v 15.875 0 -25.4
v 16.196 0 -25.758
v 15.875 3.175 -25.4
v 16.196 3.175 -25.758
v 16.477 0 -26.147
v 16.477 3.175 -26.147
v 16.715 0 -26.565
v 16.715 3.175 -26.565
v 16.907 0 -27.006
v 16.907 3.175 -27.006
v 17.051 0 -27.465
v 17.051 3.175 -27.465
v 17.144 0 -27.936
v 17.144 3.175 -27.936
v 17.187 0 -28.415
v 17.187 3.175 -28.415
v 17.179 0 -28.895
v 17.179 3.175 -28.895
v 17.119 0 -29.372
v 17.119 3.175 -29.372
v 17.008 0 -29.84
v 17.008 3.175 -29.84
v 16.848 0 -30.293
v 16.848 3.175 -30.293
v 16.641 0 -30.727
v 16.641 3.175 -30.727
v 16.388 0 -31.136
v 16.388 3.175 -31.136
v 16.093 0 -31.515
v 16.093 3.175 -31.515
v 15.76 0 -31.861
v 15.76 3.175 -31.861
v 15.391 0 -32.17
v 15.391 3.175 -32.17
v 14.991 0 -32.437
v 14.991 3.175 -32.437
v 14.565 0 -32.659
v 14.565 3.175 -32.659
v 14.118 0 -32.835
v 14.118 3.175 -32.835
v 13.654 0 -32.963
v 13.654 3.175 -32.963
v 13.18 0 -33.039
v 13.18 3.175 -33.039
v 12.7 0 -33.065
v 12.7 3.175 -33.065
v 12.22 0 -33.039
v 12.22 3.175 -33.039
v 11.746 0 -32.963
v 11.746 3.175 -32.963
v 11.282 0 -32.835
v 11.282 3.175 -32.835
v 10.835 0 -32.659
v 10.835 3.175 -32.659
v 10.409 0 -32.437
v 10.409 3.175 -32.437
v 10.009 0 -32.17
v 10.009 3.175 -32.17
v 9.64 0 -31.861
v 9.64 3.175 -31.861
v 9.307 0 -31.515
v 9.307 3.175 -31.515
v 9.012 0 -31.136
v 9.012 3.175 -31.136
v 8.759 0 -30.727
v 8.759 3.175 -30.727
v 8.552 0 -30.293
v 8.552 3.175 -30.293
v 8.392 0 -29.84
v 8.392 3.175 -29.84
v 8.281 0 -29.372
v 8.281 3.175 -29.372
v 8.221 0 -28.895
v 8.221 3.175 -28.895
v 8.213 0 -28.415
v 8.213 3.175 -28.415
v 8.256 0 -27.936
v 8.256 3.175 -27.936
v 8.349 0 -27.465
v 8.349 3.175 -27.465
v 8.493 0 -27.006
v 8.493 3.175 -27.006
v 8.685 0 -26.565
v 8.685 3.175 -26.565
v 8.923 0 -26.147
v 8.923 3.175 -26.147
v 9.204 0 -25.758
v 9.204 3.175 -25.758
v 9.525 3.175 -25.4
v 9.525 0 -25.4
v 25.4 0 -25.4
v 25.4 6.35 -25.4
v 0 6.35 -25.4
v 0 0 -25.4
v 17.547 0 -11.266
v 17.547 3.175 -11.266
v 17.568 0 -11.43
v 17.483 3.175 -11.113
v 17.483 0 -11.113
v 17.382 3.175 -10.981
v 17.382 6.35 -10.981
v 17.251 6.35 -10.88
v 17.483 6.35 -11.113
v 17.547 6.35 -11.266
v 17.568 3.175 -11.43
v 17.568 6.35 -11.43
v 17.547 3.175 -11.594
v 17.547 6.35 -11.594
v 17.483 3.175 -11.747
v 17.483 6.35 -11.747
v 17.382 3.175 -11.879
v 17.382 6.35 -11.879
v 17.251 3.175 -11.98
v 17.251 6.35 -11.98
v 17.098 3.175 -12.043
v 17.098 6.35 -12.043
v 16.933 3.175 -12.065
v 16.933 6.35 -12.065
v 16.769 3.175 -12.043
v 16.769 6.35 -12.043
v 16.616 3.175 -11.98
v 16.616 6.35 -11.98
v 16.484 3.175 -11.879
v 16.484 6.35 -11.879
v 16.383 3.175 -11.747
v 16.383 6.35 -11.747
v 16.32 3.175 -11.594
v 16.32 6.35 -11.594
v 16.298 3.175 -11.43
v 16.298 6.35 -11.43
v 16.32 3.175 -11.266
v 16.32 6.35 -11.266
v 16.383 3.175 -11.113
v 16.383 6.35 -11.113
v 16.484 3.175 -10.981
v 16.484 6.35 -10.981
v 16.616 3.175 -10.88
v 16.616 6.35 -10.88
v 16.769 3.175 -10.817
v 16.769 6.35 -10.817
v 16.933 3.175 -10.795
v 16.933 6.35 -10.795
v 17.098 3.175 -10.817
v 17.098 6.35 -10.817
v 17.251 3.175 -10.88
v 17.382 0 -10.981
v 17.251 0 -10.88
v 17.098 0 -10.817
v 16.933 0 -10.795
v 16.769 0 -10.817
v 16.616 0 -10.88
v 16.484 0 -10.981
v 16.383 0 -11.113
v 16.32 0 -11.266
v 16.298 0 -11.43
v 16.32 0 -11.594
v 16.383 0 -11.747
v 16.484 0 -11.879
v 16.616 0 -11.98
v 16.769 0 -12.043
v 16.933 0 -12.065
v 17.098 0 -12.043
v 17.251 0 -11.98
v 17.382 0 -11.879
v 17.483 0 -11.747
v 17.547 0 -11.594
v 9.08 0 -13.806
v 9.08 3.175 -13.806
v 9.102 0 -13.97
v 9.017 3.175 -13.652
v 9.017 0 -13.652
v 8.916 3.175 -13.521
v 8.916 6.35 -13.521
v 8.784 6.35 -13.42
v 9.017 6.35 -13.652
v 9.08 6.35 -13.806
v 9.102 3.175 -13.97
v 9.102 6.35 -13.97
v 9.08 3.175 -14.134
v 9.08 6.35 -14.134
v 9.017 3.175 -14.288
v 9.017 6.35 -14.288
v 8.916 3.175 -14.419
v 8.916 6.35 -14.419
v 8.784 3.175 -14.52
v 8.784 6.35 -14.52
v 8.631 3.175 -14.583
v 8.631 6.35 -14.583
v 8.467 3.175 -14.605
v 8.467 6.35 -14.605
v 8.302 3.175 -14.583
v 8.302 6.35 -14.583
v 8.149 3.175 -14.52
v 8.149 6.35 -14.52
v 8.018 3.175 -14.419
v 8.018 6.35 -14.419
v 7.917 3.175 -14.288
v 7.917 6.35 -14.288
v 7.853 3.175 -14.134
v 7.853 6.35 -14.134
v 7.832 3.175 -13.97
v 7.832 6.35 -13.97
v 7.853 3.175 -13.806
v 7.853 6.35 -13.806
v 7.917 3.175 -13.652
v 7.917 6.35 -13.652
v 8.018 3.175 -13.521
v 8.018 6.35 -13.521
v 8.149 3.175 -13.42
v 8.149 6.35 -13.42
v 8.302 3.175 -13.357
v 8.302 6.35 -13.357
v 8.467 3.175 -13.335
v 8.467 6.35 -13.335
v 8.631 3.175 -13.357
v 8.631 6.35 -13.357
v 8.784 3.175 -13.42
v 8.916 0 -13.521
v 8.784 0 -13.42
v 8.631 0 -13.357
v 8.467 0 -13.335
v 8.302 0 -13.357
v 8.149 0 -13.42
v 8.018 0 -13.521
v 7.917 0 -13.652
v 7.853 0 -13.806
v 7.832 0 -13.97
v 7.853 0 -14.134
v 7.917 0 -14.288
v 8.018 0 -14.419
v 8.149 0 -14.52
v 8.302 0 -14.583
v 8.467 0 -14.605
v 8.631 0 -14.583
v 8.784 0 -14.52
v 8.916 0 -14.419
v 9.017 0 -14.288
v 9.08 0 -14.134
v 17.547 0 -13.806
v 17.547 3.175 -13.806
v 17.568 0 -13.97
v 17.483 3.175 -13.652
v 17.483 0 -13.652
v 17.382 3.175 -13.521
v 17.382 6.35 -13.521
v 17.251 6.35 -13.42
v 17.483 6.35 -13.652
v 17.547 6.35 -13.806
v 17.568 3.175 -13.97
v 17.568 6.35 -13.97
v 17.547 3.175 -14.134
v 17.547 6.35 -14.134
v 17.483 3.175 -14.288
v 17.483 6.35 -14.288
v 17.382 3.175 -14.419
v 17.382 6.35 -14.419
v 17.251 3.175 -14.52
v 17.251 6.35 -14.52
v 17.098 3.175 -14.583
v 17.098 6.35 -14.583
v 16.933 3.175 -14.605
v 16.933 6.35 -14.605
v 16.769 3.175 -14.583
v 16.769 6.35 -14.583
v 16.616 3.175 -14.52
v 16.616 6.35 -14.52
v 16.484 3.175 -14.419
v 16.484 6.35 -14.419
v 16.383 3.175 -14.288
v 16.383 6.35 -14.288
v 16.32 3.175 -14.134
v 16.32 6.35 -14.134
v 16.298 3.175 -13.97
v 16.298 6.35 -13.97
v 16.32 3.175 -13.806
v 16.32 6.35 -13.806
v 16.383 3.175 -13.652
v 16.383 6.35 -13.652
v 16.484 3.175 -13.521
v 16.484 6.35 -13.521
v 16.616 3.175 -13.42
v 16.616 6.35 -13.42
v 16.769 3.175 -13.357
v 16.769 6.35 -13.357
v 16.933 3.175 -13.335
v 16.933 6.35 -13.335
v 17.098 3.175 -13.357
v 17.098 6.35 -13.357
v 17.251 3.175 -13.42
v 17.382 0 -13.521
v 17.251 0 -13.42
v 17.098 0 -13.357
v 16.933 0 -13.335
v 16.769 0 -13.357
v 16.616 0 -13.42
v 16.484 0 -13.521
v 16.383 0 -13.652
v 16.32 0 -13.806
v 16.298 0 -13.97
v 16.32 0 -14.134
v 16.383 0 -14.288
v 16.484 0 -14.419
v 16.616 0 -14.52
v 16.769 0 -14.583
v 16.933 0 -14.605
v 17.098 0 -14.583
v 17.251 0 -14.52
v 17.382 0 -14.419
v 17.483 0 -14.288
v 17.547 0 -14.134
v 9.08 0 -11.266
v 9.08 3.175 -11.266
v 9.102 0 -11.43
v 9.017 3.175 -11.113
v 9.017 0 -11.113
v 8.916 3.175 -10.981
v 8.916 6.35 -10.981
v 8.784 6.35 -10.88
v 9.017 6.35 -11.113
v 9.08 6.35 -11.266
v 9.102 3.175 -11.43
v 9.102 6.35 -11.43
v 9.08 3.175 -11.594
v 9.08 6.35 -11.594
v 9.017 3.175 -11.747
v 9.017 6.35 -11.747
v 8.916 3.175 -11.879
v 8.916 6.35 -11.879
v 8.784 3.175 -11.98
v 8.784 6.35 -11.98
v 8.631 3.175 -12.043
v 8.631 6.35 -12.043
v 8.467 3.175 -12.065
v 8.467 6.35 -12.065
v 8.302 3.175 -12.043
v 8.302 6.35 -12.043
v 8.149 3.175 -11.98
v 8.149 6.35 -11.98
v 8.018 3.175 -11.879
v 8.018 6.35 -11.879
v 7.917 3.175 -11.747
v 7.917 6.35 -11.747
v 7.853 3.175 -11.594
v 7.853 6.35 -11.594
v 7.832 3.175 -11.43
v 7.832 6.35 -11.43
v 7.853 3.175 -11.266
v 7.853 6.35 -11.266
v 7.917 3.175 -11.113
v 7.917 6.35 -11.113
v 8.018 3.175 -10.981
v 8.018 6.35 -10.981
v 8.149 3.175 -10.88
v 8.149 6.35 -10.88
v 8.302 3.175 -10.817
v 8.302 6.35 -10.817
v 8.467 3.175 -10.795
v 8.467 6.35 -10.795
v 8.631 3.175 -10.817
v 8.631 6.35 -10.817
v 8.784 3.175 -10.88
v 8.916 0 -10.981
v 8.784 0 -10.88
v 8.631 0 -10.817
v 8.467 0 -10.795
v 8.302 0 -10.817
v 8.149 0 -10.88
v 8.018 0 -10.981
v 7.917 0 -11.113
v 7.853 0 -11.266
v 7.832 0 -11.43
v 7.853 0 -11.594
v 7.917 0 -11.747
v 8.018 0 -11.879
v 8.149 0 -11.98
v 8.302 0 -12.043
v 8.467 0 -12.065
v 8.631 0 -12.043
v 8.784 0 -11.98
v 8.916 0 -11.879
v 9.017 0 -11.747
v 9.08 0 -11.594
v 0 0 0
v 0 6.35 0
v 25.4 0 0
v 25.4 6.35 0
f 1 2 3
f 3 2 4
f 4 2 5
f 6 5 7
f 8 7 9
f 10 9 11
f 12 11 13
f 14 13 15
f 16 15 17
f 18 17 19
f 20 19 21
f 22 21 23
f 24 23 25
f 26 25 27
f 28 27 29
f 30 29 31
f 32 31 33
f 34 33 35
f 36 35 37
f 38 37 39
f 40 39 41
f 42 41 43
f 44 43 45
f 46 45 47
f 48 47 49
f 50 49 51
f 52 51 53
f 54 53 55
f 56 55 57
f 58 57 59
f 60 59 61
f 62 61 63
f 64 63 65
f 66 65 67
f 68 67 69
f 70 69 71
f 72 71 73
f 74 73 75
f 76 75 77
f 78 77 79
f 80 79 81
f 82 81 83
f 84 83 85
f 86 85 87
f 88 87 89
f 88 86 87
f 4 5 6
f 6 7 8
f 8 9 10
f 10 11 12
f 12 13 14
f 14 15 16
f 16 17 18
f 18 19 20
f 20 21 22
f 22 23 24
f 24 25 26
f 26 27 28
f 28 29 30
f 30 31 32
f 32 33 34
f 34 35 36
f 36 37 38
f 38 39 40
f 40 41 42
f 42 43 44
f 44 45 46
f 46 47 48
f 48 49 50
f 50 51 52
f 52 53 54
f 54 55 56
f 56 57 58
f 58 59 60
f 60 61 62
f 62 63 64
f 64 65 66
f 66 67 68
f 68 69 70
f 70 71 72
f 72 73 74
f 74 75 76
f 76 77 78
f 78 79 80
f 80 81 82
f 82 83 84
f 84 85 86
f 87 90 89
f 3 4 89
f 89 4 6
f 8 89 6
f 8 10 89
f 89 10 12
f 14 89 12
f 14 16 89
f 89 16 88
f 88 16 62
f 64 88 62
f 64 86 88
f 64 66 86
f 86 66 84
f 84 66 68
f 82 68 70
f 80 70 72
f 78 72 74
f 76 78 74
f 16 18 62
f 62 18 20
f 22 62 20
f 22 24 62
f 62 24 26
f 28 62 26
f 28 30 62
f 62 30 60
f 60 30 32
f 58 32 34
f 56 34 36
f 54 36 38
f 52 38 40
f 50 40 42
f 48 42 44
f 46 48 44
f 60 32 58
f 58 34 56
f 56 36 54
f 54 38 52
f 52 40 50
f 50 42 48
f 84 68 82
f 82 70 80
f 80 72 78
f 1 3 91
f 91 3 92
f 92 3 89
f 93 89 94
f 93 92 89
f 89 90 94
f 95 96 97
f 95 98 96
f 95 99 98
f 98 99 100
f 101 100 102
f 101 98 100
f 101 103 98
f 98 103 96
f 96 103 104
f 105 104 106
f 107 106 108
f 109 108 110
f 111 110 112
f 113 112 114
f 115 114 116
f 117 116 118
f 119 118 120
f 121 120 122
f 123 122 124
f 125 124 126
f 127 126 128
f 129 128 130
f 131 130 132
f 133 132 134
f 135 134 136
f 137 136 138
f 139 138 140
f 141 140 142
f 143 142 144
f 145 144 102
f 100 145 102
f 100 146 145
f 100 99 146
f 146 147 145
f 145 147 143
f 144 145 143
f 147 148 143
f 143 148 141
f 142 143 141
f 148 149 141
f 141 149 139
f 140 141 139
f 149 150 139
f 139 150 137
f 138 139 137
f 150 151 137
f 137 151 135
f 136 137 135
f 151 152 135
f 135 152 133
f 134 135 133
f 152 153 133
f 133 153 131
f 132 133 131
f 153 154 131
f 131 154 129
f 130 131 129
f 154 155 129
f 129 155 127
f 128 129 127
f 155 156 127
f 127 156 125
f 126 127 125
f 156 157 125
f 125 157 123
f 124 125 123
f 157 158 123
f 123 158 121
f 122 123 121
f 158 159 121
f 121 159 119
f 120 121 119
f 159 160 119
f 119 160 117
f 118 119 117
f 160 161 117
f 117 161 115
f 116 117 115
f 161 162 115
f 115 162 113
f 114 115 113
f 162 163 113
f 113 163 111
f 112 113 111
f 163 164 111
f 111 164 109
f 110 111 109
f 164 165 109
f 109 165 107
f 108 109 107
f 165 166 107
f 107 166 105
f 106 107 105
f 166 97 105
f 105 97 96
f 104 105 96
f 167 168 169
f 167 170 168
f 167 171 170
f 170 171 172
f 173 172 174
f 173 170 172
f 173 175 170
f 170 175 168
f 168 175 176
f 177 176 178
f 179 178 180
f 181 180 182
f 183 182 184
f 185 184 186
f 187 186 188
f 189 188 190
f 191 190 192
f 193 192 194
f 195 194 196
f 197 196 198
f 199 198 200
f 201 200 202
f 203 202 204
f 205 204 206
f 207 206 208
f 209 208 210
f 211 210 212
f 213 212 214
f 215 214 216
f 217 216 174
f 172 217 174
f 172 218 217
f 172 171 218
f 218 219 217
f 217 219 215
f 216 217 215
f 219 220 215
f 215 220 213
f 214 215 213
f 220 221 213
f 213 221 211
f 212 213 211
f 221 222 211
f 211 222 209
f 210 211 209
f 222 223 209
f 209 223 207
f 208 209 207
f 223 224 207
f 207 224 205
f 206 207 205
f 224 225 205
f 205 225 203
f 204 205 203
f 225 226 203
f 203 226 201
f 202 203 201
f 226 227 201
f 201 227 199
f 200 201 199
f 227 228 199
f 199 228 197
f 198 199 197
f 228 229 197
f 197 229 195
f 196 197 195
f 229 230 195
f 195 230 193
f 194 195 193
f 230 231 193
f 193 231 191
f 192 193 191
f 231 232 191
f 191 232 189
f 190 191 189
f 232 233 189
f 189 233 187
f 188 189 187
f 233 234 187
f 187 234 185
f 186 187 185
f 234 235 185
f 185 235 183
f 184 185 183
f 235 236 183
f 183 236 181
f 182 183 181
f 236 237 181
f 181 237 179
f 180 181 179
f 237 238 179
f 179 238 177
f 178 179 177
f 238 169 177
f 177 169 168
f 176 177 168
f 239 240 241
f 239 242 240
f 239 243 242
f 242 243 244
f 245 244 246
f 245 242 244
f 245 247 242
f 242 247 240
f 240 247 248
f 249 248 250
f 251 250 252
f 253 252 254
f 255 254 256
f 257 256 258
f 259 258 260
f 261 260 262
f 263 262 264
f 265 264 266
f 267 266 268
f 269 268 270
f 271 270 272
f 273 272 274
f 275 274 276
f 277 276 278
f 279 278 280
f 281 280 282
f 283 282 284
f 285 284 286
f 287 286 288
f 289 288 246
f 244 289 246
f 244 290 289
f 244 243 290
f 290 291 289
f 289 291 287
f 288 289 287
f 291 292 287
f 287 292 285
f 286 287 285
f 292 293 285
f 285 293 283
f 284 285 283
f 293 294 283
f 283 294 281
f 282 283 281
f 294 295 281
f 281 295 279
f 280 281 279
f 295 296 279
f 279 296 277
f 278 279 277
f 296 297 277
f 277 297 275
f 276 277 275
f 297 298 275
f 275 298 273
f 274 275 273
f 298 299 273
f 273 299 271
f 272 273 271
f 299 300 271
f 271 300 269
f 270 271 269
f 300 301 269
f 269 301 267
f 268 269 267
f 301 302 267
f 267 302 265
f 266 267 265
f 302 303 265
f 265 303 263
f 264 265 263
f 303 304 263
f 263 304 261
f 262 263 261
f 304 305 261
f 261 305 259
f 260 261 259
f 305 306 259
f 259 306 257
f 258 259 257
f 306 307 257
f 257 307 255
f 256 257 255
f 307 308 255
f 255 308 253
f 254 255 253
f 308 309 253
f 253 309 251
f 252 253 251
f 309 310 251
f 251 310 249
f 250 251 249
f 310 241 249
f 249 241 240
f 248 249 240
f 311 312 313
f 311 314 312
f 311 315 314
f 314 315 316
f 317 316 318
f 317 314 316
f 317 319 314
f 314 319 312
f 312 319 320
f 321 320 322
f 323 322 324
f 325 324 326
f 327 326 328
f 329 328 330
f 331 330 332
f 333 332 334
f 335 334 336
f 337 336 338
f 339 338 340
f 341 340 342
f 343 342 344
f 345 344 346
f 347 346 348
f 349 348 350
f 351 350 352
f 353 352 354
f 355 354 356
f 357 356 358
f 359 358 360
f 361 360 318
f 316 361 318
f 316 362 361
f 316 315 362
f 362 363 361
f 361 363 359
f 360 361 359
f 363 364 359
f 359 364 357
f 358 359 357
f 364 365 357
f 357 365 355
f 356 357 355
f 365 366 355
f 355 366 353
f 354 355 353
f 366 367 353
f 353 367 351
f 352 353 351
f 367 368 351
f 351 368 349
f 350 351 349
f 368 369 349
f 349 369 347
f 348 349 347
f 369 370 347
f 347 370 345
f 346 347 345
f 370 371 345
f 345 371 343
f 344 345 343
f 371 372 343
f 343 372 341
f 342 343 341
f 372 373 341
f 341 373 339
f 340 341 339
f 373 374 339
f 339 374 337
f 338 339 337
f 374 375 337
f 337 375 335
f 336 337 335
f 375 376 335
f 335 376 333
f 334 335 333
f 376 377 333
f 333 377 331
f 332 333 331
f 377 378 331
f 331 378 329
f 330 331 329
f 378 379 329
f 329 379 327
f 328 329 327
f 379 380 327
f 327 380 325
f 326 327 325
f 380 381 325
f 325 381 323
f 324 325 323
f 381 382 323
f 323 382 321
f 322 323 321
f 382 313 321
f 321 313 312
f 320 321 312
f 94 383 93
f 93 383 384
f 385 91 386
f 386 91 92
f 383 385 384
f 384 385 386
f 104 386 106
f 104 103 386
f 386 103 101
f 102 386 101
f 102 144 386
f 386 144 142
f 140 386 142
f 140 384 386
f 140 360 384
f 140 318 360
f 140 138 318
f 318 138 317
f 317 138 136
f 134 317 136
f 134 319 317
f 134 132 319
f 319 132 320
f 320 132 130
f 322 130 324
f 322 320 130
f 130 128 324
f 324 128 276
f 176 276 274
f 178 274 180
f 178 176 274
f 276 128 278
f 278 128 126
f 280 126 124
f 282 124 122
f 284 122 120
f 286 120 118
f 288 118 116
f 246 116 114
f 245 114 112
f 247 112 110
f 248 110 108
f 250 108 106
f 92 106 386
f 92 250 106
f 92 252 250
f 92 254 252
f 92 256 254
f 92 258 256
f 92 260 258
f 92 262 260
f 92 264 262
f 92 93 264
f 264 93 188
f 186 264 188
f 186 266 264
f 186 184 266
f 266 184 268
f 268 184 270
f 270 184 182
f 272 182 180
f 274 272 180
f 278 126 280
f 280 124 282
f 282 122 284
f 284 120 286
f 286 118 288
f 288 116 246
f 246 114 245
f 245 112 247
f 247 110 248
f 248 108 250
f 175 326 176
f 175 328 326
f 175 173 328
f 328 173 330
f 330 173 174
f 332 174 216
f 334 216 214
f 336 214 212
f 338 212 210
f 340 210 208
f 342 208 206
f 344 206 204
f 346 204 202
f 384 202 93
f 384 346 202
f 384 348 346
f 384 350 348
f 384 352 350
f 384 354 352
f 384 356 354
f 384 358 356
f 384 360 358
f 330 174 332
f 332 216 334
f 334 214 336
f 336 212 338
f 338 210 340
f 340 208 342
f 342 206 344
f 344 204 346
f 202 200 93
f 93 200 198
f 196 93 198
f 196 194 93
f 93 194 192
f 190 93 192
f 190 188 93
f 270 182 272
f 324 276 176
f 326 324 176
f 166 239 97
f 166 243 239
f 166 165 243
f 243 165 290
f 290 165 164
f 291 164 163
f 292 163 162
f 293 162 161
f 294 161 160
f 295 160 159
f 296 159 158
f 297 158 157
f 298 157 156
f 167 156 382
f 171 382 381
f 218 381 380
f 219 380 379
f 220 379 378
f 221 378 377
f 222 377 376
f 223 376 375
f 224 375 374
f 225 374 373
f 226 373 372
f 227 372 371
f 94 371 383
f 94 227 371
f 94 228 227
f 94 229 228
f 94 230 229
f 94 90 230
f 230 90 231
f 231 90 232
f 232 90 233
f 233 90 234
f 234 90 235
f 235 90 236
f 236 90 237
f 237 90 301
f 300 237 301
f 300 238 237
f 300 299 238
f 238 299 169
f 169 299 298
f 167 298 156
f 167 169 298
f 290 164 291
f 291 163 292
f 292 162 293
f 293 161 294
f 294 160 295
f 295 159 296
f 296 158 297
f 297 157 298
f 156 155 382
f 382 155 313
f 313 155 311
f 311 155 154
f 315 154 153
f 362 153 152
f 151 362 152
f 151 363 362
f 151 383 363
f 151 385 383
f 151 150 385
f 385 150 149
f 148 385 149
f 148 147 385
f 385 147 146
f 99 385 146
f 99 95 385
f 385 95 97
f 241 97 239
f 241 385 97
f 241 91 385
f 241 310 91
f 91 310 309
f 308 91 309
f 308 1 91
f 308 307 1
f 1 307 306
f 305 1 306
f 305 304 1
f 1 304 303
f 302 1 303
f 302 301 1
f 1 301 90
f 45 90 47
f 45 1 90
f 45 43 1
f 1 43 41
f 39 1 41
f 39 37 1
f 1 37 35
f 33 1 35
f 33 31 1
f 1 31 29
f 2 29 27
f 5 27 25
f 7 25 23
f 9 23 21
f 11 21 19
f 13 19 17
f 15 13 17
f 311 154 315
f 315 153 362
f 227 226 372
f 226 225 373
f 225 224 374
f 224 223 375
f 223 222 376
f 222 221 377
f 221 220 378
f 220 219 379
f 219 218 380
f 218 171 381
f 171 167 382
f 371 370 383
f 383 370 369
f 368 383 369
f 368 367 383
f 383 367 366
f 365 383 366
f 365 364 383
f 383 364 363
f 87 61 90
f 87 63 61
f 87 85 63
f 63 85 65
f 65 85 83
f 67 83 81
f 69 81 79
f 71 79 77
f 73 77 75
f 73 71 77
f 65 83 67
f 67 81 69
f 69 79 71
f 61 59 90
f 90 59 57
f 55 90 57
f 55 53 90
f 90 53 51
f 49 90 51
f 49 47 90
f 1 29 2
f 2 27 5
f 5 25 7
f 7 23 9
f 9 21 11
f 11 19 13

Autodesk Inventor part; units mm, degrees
ref_plane "YZ Plane" through (0, 0, 0) normal (1, 0, 0) x (0, 1, 0)
ref_plane "XZ Plane" through (0, 0, 0) normal (0, 1, 0) x (-1, 0, 0)
ref_plane "XY Plane" through (0, 0, 0) normal (0, 0, 1) x (1, 0, 0)
sketch "Sketch1" plane through (0, 0, 0) normal (0, 1, 0) x (-1, 0, 0)
  line L0 (0, 0) -> (-25.4, 0)
  line L1 (-25.4, 0) -> (-25.4, -25.4)
  line L2 (-25.4, -25.4) -> (0, -25.4)
  line L3 (0, -25.4) -> (0, 0)
  dimension "d0" = 25.4
extrude "Extrusion1" add sketch "Sketch1" along normal blind 6.35
sketch "Sketch2" plane through (0, 6.35, 0) normal (0, 1, 0) x (1, 0, 0)
  circle A0 centre (8.4667, 13.97) radius 0.635
  circle A1 centre (16.9333, 13.97) radius 0.635
  circle A2 centre (16.9333, 11.43) radius 0.635
  circle A3 centre (8.4667, 11.43) radius 0.635
  line L0 (25.4, 0) -> (25.4, 25.4) projected
  line L1 (0, 0) -> (25.4, 0) projected
  dimension "d3" = 8.4667
  dimension "d4" = 8.4667
  dimension "d5" = 2.54
  dimension "d6" = 1.27
  dimension "d7" = 11.43
extrude "Extrusion2" cut sketch "Sketch2" against normal blind 6.35
sketch "Sketch4" plane through (0, 0, 0) normal (0, -1, 0) x (1, 0, 0)
  line L0 (25.4, -25.4) -> (0, -25.4) projected
  arc A0 (9.525, -25.4) -> (15.875, -25.4) centre (12.7, -28.575) ccw
  line L1 (15.875, -25.4) -> (9.525, -25.4)
  point P0 (0, 0)
  dimension "d10" = 90
  dimension "d11" = 6.35
  dimension "d12" = 9.525
extrude "Extrusion3" add sketch "Sketch4" against normal blind 3.175
equation "\"d1\" = 0.25 * d0"
equation "\"d3\" = 0.333333 * d0"
equation "\"d4\" = d3"
equation "\"d8\" = 0.25 * d0"
equation "\"d11\" = 0.25 * d0"
equation "\"d12\" = 0.375 * d0"
equation "\"d13\" = 0.5 * d1"
properties part number "pieceBase"
